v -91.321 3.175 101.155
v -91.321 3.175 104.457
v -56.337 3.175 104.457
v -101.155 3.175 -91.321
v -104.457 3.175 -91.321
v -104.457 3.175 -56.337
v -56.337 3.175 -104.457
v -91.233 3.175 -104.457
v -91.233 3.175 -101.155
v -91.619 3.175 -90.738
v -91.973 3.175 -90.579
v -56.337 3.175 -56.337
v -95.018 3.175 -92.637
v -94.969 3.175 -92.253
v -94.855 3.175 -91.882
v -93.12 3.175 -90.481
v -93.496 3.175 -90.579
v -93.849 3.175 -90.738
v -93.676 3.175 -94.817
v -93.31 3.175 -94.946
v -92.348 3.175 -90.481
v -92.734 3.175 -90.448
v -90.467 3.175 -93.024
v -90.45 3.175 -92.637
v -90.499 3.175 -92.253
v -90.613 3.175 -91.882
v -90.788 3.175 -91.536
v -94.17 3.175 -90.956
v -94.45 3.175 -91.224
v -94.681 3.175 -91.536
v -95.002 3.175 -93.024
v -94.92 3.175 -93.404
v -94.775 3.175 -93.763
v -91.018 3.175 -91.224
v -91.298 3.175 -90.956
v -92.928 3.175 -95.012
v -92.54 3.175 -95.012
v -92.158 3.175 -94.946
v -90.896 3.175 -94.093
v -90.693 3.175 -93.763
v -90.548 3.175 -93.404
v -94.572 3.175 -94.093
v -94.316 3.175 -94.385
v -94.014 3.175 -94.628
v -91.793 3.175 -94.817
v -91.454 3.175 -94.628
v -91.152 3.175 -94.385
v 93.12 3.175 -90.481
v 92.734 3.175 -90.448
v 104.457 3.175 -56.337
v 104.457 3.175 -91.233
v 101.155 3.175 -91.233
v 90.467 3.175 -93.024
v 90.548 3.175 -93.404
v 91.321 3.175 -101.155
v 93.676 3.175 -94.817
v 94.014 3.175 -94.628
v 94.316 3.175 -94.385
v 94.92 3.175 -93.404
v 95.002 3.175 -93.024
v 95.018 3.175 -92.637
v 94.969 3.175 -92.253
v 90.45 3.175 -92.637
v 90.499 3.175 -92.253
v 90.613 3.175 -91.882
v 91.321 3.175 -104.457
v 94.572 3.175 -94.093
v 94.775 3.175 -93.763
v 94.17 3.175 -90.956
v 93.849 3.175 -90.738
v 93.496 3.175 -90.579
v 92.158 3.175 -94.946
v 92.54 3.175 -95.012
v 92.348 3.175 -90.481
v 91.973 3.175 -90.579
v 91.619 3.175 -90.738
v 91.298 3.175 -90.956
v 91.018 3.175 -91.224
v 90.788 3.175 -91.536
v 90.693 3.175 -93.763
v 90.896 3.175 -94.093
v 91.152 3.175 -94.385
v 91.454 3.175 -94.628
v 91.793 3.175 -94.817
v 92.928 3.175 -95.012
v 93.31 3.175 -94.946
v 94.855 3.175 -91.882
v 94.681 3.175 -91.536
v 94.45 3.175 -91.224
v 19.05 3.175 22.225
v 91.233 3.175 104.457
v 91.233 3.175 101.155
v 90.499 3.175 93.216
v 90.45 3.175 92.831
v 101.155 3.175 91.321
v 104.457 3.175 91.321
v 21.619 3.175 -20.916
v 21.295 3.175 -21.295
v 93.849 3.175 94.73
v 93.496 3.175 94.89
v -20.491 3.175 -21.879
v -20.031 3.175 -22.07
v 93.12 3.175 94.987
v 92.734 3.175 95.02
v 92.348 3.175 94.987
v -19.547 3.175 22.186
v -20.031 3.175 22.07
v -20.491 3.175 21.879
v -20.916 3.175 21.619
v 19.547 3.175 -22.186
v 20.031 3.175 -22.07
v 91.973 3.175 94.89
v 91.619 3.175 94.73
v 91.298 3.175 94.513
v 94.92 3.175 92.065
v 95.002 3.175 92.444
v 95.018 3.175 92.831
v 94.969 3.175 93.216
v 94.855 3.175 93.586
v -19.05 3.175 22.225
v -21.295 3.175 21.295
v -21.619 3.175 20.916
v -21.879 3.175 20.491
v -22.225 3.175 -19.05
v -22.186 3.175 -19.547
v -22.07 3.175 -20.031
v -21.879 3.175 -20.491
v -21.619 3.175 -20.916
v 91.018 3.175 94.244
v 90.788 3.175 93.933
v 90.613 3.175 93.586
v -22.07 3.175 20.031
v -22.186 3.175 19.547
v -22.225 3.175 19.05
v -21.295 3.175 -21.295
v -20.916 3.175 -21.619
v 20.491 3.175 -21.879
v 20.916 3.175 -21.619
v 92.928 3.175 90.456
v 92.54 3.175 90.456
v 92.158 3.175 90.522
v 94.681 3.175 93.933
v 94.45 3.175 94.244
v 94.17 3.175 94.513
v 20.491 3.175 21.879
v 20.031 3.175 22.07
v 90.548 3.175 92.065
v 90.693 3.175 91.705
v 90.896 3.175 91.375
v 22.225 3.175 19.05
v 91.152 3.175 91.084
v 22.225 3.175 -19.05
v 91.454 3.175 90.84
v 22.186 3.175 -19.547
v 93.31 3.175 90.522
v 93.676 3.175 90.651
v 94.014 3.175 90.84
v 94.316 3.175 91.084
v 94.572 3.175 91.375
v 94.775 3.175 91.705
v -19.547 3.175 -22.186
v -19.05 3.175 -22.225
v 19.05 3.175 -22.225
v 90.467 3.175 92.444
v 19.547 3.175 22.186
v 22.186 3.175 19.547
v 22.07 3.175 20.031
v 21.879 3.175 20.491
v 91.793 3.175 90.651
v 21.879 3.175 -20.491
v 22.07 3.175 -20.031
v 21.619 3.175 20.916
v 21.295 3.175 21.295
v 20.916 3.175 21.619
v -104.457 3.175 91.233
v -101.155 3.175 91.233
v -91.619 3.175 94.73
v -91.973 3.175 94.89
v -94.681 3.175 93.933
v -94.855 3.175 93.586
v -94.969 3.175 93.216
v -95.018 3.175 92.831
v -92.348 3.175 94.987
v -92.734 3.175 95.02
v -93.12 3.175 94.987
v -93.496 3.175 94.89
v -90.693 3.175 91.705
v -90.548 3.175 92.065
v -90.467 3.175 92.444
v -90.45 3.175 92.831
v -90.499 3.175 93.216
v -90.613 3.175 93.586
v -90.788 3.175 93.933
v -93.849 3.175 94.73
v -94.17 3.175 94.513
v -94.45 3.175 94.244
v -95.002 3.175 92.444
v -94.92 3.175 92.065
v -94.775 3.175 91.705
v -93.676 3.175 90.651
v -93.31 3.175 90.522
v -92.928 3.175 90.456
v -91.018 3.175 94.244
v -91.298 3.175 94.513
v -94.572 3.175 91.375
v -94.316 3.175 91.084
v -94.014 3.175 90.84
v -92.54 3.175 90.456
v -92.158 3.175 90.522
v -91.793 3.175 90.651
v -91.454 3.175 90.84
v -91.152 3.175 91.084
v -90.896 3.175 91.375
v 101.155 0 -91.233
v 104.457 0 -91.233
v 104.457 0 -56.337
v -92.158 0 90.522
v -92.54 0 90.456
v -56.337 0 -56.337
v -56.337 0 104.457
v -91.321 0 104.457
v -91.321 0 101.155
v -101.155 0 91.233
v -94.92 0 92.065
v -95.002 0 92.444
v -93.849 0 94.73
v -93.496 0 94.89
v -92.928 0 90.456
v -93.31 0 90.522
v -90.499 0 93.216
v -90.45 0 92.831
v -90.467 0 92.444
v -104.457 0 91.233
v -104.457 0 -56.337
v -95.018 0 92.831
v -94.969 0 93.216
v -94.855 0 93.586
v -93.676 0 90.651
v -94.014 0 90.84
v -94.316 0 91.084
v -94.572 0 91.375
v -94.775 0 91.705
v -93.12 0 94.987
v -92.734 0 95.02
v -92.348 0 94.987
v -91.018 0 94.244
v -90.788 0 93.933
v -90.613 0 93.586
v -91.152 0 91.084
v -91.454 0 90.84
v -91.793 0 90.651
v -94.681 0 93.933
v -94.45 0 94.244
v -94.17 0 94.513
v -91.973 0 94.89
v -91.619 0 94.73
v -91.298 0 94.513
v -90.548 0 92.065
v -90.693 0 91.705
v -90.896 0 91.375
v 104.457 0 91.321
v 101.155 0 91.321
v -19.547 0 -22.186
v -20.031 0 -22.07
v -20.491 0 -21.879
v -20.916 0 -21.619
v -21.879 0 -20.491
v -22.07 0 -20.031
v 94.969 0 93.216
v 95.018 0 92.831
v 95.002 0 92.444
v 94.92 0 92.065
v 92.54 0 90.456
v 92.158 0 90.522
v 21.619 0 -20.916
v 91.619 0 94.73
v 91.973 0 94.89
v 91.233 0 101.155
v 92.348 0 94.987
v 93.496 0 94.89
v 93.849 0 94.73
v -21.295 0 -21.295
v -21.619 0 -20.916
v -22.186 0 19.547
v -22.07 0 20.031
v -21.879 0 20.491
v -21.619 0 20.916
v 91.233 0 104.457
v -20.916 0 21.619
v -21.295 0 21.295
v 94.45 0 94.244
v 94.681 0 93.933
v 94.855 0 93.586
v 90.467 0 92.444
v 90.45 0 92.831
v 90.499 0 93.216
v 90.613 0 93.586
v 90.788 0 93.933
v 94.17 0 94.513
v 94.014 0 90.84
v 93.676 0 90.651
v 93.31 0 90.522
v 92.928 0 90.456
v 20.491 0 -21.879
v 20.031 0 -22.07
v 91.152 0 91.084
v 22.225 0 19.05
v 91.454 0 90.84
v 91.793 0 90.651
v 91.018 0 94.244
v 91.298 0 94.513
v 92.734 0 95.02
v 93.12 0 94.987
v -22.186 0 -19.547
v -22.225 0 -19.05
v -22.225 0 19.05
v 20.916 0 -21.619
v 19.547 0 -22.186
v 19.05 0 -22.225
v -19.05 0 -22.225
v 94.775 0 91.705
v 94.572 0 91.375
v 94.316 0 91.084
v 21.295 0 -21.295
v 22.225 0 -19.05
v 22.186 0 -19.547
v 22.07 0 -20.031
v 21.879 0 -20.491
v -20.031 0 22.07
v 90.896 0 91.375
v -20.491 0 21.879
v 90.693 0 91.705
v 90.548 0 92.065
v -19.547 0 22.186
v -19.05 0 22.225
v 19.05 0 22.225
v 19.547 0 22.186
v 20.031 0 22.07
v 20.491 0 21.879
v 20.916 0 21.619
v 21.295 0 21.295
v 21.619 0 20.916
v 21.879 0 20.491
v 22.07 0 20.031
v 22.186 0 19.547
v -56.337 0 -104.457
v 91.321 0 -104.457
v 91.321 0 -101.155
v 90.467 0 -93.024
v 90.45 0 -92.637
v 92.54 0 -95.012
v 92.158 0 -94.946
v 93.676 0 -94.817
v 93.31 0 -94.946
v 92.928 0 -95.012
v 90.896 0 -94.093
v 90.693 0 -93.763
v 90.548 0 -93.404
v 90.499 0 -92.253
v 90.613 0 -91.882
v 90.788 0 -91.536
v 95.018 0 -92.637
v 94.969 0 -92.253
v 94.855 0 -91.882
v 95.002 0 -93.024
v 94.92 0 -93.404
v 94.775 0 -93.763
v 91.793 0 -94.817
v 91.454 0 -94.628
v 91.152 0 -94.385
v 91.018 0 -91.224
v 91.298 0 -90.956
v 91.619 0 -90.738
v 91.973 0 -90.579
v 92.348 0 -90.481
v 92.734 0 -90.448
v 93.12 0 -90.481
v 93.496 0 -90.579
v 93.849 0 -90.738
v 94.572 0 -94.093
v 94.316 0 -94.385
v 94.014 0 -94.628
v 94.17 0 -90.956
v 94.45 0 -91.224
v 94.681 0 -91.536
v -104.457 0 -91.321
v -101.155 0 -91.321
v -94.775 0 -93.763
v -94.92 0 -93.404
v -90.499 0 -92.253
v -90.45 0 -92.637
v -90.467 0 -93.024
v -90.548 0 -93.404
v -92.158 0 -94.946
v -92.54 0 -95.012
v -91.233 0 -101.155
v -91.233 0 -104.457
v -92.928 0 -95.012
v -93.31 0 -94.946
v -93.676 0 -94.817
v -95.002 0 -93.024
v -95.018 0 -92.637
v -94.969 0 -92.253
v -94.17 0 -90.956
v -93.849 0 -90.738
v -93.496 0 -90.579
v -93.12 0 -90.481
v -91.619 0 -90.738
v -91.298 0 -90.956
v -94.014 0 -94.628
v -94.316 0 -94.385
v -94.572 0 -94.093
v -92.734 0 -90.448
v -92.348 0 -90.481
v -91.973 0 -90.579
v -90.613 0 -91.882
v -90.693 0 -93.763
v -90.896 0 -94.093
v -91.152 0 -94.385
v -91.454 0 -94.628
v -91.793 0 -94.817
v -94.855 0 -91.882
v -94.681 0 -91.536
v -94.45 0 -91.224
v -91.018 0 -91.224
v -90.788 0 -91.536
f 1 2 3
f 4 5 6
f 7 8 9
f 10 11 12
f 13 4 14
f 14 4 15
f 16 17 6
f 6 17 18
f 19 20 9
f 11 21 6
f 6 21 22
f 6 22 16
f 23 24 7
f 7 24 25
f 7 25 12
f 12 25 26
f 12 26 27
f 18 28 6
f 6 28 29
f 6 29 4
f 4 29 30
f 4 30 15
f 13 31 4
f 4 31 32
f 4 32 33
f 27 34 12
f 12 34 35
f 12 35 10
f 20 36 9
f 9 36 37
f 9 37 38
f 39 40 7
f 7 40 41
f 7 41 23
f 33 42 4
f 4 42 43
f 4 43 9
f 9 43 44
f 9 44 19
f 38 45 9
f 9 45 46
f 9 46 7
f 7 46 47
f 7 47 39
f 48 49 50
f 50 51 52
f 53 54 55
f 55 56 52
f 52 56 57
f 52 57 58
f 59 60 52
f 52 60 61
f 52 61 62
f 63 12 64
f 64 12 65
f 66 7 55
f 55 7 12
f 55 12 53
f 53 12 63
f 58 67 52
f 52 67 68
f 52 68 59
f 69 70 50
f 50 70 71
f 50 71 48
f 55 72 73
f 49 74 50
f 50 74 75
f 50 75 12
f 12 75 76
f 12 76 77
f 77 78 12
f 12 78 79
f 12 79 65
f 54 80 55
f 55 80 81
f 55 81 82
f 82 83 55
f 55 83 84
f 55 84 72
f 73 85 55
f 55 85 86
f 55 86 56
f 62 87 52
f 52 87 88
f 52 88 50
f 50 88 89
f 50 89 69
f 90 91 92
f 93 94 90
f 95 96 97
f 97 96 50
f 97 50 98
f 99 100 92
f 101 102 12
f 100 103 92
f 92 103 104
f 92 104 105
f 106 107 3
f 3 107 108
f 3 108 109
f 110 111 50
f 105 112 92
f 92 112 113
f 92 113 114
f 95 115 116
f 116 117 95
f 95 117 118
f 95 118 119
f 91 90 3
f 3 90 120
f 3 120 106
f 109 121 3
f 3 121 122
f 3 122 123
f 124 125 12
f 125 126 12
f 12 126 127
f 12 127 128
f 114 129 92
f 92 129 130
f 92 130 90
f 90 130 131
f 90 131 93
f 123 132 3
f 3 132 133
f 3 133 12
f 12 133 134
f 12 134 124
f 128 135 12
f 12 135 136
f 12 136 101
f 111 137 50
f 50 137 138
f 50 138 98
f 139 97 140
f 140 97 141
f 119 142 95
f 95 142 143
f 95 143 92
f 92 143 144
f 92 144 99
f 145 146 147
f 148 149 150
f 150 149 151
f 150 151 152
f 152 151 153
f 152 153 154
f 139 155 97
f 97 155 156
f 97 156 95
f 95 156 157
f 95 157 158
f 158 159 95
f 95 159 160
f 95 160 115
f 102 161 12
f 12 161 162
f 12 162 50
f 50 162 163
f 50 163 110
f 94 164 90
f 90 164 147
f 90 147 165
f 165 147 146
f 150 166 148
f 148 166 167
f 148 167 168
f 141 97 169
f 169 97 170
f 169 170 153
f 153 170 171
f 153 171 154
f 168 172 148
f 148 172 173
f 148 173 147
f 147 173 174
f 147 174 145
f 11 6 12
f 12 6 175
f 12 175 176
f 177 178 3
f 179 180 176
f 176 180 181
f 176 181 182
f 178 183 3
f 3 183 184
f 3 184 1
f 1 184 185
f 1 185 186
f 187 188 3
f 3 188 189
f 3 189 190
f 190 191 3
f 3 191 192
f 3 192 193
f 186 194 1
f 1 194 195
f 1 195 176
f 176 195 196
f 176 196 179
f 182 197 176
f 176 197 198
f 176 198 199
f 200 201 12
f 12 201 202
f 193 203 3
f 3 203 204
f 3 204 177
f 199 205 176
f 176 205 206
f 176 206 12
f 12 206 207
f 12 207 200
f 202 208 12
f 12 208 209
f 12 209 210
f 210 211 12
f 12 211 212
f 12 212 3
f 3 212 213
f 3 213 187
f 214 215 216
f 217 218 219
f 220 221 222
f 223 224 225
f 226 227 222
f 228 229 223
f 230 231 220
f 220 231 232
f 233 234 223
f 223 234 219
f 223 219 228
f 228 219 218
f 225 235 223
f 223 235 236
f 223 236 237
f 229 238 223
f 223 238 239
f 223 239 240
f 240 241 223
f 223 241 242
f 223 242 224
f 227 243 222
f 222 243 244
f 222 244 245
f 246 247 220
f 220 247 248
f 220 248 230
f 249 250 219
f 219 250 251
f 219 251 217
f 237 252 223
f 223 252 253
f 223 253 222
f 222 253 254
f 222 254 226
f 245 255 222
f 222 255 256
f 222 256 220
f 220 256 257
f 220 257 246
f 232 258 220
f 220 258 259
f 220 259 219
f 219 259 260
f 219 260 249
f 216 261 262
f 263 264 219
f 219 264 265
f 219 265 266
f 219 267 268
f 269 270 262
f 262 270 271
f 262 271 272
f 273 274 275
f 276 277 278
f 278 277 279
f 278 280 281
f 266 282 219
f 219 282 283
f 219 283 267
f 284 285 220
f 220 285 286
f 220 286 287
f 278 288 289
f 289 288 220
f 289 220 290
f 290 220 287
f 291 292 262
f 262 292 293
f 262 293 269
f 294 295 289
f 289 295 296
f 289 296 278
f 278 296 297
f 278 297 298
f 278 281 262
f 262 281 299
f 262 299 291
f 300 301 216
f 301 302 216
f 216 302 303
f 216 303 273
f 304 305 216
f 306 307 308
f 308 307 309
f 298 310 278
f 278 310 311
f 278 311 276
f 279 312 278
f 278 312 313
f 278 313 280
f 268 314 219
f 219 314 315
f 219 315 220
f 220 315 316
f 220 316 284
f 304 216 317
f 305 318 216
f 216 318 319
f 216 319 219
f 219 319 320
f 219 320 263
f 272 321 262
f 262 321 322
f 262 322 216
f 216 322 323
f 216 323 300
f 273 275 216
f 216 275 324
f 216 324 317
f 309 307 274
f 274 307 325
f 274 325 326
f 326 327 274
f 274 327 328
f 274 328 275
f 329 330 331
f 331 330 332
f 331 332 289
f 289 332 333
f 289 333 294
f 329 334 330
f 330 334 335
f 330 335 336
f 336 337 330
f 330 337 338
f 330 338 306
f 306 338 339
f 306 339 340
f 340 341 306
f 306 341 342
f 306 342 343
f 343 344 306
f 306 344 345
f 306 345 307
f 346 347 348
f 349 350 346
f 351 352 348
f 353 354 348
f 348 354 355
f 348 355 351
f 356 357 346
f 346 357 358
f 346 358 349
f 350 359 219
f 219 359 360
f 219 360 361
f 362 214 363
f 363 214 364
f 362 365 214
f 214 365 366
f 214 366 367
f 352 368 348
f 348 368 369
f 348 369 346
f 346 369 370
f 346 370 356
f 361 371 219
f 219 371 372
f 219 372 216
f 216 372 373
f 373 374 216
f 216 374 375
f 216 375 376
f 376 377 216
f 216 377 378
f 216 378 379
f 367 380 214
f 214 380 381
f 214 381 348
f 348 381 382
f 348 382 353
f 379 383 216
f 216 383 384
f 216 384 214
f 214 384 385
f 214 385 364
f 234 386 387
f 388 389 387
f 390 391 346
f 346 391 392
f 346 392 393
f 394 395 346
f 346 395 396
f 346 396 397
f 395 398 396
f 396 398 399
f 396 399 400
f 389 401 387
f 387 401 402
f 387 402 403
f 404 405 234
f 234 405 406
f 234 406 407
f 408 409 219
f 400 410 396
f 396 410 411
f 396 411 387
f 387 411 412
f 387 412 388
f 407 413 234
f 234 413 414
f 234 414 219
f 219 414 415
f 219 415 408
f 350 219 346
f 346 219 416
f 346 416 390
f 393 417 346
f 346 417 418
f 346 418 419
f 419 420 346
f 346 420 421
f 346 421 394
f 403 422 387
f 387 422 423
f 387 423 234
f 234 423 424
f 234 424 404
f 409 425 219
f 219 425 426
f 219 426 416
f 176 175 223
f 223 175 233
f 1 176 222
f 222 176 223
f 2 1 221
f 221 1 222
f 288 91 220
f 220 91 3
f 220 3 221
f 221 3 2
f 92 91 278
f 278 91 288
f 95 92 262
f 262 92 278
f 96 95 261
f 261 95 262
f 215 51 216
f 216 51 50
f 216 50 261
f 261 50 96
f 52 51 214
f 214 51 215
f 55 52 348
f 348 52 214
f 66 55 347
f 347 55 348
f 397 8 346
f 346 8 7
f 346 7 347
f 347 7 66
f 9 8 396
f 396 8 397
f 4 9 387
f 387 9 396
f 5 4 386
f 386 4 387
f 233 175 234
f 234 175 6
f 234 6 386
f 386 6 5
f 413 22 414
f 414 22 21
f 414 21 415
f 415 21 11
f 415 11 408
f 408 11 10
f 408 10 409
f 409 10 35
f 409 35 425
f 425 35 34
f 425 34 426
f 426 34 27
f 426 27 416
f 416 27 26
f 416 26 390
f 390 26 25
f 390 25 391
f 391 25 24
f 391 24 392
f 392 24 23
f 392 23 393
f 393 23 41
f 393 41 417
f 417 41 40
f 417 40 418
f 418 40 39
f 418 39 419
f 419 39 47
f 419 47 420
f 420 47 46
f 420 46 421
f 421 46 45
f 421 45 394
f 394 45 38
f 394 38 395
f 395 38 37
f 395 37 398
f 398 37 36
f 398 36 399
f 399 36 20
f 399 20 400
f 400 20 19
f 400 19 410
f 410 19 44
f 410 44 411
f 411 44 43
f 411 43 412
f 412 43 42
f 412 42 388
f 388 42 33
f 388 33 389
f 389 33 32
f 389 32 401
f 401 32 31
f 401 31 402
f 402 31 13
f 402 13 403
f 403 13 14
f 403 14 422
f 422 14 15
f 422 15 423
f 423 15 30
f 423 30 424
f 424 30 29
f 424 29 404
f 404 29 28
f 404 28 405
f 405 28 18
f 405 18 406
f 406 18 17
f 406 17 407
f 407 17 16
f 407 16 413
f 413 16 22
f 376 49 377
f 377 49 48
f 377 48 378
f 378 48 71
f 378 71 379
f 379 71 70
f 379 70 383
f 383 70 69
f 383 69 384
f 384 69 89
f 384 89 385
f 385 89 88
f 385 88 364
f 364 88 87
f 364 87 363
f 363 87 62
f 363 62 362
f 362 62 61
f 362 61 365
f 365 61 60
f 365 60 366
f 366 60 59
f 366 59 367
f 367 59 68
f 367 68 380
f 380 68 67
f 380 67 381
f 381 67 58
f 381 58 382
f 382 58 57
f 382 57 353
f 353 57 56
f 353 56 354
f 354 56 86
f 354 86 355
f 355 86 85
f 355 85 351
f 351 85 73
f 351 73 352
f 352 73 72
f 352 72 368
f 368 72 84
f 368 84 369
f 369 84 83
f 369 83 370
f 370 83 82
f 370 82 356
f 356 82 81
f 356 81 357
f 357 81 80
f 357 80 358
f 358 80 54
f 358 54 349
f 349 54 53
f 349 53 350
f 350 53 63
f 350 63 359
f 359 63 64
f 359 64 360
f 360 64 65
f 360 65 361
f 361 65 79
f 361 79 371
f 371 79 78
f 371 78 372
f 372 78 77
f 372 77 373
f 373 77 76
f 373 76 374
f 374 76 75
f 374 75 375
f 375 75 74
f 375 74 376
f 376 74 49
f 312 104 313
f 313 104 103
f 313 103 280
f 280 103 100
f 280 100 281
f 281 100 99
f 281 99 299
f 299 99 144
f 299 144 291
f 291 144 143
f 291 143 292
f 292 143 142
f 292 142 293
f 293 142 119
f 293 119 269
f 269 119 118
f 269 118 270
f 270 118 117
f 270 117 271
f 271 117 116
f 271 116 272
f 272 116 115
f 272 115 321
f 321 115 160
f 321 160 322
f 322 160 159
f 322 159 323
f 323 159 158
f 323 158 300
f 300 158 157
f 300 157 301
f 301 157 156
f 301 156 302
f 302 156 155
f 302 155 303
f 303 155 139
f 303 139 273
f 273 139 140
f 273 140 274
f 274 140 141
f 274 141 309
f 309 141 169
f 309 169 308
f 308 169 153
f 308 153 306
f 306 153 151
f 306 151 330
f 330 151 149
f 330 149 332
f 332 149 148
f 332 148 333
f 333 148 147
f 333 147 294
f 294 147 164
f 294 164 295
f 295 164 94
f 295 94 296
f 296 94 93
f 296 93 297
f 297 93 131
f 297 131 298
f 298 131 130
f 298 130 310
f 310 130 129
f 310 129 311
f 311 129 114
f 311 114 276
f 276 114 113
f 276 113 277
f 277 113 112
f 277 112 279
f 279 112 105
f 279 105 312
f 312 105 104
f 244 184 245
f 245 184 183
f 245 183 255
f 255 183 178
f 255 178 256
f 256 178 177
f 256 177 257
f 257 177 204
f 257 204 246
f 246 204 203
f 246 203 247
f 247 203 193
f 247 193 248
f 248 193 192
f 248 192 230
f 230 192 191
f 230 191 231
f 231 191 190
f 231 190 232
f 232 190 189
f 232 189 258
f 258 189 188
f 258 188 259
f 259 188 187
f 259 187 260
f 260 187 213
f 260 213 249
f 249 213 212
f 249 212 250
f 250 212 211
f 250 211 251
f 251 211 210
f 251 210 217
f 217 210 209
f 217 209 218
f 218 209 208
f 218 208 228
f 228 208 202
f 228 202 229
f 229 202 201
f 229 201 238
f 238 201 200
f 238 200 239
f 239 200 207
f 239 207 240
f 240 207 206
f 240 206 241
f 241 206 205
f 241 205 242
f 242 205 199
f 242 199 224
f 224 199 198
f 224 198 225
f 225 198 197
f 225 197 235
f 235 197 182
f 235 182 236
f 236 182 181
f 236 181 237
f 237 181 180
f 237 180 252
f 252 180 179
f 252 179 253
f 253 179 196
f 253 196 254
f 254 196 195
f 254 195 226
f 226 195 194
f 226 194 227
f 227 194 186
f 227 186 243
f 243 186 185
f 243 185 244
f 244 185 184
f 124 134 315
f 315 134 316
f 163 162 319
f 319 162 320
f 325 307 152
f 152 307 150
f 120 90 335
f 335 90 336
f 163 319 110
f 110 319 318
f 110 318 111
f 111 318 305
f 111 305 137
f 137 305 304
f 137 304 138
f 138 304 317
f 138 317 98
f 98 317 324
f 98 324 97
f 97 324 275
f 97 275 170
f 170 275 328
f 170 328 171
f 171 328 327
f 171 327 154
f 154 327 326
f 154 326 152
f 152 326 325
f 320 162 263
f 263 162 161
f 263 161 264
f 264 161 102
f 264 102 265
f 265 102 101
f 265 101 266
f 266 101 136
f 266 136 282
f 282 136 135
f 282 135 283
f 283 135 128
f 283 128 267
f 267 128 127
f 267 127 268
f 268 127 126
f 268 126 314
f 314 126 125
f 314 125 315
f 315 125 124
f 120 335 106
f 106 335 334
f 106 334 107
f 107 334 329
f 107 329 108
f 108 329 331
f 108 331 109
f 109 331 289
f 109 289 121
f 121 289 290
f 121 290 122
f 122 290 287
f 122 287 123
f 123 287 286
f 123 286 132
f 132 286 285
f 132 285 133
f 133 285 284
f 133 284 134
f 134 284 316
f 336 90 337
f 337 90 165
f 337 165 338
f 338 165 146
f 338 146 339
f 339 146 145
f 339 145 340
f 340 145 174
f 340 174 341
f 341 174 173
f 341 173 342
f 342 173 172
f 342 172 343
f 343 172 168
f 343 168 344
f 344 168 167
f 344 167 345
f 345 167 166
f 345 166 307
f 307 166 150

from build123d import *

# Parameters (mm, degrees)
BOSS_EXTRUDE1_DEPTH = 3.175
CUT_EXTRUDE1_REACH  = 5.175
SKETCH3_R           = 2.286
CUT_EXTRUDE2_REACH  = 5.175
SKETCH5_W           = 44.45
SKETCH5_H           = 44.45
FILLET1_R           = 3.175


with BuildPart() as part:
    # Sketch1 → Boss-Extrude1 (new body)
    with BuildSketch(Plane(origin=(0, 0, 0), x_dir=(1, 0, 0), z_dir=(0, 1, 0))):
        Polygon((-91.233267746, 104.4575), (-91.233267746, 101.1555), (-101.1555, 91.321365209), (-104.4575, 91.321365209), (-104.4575, -91.233267746), (-101.1555, -91.233267746), (-91.321365209, -101.1555), (-91.321365209, -104.4575), (91.233267746, -104.4575), (91.233267746, -101.1555), (101.1555, -91.321365209), (104.4575, -91.321365209), (104.4575, 91.233267746), (101.1555, 91.233267746), (91.321365209, 101.1555), (91.321365209, 104.4575), align=None)
    extrude(amount=BOSS_EXTRUDE1_DEPTH)

    # Sketch3 → Cut-Extrude1 (cut, up to next)
    with BuildSketch(Plane(origin=(0, 3.175, 0), x_dir=(1, 0, 0), z_dir=(0, 1, 0)), mode=Mode.PRIVATE) as cut_extrude1_sk1:
        with Locations((-92.73413, 92.73413)):
            Circle(SKETCH3_R)
    cut_extrude1_tool1 = extrude(cut_extrude1_sk1.sketch, amount=-CUT_EXTRUDE1_REACH, mode=Mode.PRIVATE) & part.part
    add(cut_extrude1_tool1.solids().sort_by_distance((-92.73413, 3.175, -92.73413))[0], mode=Mode.SUBTRACT)
    # Sketch3 → Cut-Extrude1 (cut, up to next)
    with BuildSketch(Plane(origin=(0, 3.175, 0), x_dir=(1, 0, 0), z_dir=(0, 1, 0)), mode=Mode.PRIVATE) as cut_extrude1_sk2:
        with Locations((92.73413, 92.73413)):
            Circle(SKETCH3_R)
    cut_extrude1_tool2 = extrude(cut_extrude1_sk2.sketch, amount=-CUT_EXTRUDE1_REACH, mode=Mode.PRIVATE) & part.part
    add(cut_extrude1_tool2.solids().sort_by_distance((92.73413, 3.175, -92.73413))[0], mode=Mode.SUBTRACT)
    # Sketch3 → Cut-Extrude1 (cut, up to next)
    with BuildSketch(Plane(origin=(0, 3.175, 0), x_dir=(1, 0, 0), z_dir=(0, 1, 0)), mode=Mode.PRIVATE) as cut_extrude1_sk3:
        with Locations((92.73413, -92.73413)):
            Circle(SKETCH3_R)
    cut_extrude1_tool3 = extrude(cut_extrude1_sk3.sketch, amount=-CUT_EXTRUDE1_REACH, mode=Mode.PRIVATE) & part.part
    add(cut_extrude1_tool3.solids().sort_by_distance((92.73413, 3.175, 92.73413))[0], mode=Mode.SUBTRACT)
    # Sketch3 → Cut-Extrude1 (cut, up to next)
    with BuildSketch(Plane(origin=(0, 3.175, 0), x_dir=(1, 0, 0), z_dir=(0, 1, 0)), mode=Mode.PRIVATE) as cut_extrude1_sk4:
        with Locations((-92.73413, -92.73413)):
            Circle(SKETCH3_R)
    cut_extrude1_tool4 = extrude(cut_extrude1_sk4.sketch, amount=-CUT_EXTRUDE1_REACH, mode=Mode.PRIVATE) & part.part
    add(cut_extrude1_tool4.solids().sort_by_distance((-92.73413, 3.175, 92.73413))[0], mode=Mode.SUBTRACT)

    # Sketch5 → Cut-Extrude2 (cut, up to next)
    with BuildSketch(Plane(origin=(0, 3.175, 0), x_dir=(1, 0, 0), z_dir=(0, 1, 0)), mode=Mode.PRIVATE) as cut_extrude2_sk1:
        Rectangle(SKETCH5_W, SKETCH5_H)
    cut_extrude2_tool1 = extrude(cut_extrude2_sk1.sketch, amount=-CUT_EXTRUDE2_REACH, mode=Mode.PRIVATE) & part.part
    add(cut_extrude2_tool1.solids().sort_by_distance((0, 3.175, 0))[0], mode=Mode.SUBTRACT)

    # Fillet1
    fillet1_edges = [part.edges().sort_by_distance(p)[0] for p in [
        (-22.225, 1.5875, 22.225),
        (-22.225, 1.5875, -22.225),
        (22.225, 1.5875, -22.225),
        (22.225, 1.5875, 22.225),
    ]]
    fillet(fillet1_edges, radius=FILLET1_R)


solid = part.part
